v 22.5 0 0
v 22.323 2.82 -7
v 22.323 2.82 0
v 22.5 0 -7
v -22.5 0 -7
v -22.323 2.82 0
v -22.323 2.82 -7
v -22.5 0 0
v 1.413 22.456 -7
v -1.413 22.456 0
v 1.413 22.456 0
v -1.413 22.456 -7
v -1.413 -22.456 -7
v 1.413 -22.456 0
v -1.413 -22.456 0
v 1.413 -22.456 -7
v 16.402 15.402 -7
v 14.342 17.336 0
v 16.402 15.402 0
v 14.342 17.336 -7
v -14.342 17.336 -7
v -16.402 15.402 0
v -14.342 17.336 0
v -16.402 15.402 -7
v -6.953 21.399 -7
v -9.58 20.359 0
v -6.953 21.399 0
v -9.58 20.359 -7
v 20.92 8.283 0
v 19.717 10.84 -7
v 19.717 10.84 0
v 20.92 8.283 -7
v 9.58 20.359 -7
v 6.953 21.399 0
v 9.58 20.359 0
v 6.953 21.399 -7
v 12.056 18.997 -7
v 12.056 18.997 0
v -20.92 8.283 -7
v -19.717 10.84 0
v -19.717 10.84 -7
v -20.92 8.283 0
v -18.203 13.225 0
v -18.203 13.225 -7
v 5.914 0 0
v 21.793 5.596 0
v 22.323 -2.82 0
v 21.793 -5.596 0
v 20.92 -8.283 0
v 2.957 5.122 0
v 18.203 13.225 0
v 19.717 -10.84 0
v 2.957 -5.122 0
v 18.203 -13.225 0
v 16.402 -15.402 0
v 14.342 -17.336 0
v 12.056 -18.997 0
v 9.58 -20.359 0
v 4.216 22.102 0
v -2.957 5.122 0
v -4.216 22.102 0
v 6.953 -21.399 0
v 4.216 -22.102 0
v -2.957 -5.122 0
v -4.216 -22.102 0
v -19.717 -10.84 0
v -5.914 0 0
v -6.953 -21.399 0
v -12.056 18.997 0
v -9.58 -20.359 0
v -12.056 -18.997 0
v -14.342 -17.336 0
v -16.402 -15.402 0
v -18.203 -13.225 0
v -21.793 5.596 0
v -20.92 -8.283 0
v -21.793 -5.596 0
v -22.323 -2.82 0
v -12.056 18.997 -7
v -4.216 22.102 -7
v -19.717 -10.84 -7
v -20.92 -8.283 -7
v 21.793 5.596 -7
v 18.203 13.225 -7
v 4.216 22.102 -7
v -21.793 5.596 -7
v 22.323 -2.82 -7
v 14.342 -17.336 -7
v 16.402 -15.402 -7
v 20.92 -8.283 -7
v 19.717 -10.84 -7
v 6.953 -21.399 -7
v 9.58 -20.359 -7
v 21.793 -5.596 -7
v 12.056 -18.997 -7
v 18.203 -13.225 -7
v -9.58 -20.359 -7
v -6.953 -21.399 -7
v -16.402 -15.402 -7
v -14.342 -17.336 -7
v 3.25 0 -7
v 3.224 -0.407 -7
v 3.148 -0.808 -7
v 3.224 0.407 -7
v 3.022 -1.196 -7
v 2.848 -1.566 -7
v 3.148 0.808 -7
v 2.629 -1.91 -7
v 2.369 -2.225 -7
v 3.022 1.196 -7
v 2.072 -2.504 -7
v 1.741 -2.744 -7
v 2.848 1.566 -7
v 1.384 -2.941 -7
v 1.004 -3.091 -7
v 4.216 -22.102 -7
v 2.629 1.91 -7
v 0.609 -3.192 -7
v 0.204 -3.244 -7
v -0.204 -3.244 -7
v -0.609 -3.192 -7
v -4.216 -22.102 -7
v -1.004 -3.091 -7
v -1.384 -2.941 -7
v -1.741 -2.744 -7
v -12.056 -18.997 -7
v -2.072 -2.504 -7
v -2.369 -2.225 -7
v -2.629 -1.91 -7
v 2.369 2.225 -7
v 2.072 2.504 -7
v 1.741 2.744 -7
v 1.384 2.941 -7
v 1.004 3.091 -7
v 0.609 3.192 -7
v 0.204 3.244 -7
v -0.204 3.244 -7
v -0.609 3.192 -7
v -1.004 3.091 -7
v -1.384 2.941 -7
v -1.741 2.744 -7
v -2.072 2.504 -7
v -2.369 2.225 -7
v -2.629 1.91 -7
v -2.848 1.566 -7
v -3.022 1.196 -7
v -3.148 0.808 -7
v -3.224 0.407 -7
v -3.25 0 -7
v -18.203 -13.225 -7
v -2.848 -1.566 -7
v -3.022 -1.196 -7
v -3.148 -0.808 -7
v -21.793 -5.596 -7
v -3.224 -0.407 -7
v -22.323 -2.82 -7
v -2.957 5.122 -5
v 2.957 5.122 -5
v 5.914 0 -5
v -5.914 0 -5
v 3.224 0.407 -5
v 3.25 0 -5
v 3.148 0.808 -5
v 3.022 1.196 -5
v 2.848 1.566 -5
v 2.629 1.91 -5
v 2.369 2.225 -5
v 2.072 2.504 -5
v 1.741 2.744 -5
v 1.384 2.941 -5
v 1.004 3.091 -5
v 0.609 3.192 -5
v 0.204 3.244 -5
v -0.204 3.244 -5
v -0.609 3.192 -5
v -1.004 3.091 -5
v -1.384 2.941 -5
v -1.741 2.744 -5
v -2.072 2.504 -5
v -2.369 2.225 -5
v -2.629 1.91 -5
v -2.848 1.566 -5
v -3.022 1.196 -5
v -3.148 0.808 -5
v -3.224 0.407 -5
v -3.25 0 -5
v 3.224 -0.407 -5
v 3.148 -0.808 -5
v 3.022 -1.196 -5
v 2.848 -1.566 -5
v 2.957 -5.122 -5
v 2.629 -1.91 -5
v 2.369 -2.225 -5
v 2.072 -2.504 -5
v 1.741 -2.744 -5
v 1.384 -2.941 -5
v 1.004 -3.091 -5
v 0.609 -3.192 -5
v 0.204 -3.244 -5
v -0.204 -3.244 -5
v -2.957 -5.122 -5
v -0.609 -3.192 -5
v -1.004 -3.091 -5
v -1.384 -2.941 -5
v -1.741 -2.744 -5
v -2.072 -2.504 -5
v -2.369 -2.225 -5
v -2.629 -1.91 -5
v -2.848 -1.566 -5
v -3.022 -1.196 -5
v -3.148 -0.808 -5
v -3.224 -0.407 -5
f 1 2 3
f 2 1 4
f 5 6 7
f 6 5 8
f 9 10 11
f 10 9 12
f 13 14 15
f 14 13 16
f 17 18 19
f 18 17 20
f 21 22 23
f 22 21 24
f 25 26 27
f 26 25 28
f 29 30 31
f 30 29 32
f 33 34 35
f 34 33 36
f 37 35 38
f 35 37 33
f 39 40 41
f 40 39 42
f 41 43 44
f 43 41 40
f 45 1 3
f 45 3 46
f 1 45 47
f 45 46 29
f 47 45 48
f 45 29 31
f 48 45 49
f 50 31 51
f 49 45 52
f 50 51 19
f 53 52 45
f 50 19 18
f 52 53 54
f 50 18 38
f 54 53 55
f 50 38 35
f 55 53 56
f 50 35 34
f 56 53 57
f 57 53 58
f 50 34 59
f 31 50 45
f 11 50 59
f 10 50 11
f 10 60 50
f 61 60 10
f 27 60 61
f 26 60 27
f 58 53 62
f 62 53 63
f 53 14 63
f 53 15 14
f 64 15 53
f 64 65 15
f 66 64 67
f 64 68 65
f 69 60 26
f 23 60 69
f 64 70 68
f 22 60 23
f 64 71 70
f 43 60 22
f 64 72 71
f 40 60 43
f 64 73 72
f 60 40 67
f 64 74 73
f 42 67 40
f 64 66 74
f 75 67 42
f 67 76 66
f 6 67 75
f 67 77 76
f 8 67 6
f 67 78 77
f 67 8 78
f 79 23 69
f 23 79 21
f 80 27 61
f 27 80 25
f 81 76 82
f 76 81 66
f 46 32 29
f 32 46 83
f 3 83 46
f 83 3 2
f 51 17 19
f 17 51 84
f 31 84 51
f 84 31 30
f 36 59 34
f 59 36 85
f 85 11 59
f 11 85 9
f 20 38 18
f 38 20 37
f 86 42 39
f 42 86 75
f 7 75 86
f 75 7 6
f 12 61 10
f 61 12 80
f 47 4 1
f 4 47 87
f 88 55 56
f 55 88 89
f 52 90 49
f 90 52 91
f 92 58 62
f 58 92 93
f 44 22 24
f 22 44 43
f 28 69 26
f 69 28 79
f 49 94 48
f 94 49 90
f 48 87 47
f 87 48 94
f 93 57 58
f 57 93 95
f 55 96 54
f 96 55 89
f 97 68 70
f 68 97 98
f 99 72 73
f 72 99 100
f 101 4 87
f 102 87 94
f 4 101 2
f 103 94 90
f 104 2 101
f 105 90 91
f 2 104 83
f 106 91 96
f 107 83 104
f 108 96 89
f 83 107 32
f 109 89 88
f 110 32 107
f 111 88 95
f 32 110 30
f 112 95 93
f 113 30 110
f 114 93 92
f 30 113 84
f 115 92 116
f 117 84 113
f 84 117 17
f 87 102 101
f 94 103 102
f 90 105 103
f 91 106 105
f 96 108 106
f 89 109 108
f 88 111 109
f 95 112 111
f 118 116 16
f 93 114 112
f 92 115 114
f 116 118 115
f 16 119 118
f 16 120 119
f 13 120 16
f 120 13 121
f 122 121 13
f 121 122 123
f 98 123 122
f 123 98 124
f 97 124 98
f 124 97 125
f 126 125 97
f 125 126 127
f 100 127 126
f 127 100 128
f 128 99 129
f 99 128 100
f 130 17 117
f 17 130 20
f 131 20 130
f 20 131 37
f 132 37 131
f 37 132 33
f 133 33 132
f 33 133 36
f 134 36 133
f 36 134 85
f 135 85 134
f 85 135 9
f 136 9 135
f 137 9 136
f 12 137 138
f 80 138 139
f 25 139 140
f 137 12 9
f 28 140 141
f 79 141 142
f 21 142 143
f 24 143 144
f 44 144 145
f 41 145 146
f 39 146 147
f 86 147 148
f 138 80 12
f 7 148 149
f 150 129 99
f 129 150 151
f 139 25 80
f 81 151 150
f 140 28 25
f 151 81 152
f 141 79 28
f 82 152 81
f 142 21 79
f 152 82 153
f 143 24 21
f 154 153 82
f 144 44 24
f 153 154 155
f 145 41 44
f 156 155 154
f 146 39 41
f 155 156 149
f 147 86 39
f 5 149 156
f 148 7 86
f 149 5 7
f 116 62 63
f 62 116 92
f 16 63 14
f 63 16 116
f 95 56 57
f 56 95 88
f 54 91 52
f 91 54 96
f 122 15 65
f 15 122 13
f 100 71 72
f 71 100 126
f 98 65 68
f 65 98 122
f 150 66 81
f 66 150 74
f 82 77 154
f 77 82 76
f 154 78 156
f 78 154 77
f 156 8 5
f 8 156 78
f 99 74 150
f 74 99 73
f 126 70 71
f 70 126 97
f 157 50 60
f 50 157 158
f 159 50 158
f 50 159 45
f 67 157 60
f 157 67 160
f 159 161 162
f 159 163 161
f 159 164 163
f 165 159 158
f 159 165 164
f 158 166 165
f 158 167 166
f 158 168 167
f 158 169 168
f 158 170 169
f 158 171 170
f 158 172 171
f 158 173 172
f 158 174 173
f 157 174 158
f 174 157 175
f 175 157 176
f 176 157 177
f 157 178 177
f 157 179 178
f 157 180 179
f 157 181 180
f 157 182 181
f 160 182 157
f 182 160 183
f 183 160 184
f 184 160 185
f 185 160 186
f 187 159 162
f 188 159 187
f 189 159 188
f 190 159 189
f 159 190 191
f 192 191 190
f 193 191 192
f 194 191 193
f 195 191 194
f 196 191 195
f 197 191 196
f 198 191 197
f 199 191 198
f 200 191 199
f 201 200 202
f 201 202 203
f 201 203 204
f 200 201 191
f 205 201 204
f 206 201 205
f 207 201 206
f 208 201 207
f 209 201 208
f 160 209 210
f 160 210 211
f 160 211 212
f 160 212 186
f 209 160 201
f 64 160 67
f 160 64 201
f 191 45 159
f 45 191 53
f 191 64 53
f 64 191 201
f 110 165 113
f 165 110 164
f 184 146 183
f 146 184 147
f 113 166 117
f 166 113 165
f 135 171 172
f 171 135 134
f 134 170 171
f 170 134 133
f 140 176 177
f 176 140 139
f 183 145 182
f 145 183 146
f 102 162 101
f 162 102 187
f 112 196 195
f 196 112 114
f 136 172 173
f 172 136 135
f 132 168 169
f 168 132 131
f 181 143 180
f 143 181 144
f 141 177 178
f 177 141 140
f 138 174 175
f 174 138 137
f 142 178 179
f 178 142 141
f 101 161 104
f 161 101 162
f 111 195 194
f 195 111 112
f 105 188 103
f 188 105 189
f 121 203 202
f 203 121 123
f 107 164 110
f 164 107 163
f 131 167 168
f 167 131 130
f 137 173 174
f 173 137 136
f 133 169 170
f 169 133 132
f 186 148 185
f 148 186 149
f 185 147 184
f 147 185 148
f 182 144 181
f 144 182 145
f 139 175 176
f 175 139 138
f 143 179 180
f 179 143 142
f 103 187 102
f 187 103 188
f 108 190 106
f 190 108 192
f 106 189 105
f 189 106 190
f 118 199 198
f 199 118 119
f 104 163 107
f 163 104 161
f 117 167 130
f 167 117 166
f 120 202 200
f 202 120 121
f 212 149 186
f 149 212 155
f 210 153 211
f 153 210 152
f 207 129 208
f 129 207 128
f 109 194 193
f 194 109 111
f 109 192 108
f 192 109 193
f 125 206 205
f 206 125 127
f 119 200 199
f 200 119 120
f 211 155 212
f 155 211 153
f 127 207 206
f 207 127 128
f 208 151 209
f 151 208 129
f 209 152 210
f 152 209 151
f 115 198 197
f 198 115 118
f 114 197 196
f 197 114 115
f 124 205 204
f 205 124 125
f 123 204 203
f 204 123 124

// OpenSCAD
$fn = 50;


difference() {
	union() {
		translate(v = [0, 0, -7.0000000000]) {
			cylinder(h = 7.0000000000, r = 22.5000000000);
		}
		translate(v = [0, 0, -5.5000000000]) {
			cylinder(h = 5.5000000000, r = 2.8750000000);
		}
	}
	union() {
		translate(v = [0, 0, 0]) {
			rotate(a = [0, 0, 0]) {
				difference() {
					union() {
						translate(v = [0, 0, -5]) {
							linear_extrude(height = 5) {
								polygon(points = [[5.9142500000, 0.0000000000], [2.9571250000, 5.1218907443], [-2.9571250000, 5.1218907443], [-5.9142500000, 0.0000000000], [-2.9571250000, -5.1218907443], [2.9571250000, -5.1218907443]]);
							}
						}
					}
					union();
				}
			}
		}
		#translate(v = [0, 0, -100.0000000000]) {
			cylinder(h = 200, r = 3.2500000000);
		}
	}
}
